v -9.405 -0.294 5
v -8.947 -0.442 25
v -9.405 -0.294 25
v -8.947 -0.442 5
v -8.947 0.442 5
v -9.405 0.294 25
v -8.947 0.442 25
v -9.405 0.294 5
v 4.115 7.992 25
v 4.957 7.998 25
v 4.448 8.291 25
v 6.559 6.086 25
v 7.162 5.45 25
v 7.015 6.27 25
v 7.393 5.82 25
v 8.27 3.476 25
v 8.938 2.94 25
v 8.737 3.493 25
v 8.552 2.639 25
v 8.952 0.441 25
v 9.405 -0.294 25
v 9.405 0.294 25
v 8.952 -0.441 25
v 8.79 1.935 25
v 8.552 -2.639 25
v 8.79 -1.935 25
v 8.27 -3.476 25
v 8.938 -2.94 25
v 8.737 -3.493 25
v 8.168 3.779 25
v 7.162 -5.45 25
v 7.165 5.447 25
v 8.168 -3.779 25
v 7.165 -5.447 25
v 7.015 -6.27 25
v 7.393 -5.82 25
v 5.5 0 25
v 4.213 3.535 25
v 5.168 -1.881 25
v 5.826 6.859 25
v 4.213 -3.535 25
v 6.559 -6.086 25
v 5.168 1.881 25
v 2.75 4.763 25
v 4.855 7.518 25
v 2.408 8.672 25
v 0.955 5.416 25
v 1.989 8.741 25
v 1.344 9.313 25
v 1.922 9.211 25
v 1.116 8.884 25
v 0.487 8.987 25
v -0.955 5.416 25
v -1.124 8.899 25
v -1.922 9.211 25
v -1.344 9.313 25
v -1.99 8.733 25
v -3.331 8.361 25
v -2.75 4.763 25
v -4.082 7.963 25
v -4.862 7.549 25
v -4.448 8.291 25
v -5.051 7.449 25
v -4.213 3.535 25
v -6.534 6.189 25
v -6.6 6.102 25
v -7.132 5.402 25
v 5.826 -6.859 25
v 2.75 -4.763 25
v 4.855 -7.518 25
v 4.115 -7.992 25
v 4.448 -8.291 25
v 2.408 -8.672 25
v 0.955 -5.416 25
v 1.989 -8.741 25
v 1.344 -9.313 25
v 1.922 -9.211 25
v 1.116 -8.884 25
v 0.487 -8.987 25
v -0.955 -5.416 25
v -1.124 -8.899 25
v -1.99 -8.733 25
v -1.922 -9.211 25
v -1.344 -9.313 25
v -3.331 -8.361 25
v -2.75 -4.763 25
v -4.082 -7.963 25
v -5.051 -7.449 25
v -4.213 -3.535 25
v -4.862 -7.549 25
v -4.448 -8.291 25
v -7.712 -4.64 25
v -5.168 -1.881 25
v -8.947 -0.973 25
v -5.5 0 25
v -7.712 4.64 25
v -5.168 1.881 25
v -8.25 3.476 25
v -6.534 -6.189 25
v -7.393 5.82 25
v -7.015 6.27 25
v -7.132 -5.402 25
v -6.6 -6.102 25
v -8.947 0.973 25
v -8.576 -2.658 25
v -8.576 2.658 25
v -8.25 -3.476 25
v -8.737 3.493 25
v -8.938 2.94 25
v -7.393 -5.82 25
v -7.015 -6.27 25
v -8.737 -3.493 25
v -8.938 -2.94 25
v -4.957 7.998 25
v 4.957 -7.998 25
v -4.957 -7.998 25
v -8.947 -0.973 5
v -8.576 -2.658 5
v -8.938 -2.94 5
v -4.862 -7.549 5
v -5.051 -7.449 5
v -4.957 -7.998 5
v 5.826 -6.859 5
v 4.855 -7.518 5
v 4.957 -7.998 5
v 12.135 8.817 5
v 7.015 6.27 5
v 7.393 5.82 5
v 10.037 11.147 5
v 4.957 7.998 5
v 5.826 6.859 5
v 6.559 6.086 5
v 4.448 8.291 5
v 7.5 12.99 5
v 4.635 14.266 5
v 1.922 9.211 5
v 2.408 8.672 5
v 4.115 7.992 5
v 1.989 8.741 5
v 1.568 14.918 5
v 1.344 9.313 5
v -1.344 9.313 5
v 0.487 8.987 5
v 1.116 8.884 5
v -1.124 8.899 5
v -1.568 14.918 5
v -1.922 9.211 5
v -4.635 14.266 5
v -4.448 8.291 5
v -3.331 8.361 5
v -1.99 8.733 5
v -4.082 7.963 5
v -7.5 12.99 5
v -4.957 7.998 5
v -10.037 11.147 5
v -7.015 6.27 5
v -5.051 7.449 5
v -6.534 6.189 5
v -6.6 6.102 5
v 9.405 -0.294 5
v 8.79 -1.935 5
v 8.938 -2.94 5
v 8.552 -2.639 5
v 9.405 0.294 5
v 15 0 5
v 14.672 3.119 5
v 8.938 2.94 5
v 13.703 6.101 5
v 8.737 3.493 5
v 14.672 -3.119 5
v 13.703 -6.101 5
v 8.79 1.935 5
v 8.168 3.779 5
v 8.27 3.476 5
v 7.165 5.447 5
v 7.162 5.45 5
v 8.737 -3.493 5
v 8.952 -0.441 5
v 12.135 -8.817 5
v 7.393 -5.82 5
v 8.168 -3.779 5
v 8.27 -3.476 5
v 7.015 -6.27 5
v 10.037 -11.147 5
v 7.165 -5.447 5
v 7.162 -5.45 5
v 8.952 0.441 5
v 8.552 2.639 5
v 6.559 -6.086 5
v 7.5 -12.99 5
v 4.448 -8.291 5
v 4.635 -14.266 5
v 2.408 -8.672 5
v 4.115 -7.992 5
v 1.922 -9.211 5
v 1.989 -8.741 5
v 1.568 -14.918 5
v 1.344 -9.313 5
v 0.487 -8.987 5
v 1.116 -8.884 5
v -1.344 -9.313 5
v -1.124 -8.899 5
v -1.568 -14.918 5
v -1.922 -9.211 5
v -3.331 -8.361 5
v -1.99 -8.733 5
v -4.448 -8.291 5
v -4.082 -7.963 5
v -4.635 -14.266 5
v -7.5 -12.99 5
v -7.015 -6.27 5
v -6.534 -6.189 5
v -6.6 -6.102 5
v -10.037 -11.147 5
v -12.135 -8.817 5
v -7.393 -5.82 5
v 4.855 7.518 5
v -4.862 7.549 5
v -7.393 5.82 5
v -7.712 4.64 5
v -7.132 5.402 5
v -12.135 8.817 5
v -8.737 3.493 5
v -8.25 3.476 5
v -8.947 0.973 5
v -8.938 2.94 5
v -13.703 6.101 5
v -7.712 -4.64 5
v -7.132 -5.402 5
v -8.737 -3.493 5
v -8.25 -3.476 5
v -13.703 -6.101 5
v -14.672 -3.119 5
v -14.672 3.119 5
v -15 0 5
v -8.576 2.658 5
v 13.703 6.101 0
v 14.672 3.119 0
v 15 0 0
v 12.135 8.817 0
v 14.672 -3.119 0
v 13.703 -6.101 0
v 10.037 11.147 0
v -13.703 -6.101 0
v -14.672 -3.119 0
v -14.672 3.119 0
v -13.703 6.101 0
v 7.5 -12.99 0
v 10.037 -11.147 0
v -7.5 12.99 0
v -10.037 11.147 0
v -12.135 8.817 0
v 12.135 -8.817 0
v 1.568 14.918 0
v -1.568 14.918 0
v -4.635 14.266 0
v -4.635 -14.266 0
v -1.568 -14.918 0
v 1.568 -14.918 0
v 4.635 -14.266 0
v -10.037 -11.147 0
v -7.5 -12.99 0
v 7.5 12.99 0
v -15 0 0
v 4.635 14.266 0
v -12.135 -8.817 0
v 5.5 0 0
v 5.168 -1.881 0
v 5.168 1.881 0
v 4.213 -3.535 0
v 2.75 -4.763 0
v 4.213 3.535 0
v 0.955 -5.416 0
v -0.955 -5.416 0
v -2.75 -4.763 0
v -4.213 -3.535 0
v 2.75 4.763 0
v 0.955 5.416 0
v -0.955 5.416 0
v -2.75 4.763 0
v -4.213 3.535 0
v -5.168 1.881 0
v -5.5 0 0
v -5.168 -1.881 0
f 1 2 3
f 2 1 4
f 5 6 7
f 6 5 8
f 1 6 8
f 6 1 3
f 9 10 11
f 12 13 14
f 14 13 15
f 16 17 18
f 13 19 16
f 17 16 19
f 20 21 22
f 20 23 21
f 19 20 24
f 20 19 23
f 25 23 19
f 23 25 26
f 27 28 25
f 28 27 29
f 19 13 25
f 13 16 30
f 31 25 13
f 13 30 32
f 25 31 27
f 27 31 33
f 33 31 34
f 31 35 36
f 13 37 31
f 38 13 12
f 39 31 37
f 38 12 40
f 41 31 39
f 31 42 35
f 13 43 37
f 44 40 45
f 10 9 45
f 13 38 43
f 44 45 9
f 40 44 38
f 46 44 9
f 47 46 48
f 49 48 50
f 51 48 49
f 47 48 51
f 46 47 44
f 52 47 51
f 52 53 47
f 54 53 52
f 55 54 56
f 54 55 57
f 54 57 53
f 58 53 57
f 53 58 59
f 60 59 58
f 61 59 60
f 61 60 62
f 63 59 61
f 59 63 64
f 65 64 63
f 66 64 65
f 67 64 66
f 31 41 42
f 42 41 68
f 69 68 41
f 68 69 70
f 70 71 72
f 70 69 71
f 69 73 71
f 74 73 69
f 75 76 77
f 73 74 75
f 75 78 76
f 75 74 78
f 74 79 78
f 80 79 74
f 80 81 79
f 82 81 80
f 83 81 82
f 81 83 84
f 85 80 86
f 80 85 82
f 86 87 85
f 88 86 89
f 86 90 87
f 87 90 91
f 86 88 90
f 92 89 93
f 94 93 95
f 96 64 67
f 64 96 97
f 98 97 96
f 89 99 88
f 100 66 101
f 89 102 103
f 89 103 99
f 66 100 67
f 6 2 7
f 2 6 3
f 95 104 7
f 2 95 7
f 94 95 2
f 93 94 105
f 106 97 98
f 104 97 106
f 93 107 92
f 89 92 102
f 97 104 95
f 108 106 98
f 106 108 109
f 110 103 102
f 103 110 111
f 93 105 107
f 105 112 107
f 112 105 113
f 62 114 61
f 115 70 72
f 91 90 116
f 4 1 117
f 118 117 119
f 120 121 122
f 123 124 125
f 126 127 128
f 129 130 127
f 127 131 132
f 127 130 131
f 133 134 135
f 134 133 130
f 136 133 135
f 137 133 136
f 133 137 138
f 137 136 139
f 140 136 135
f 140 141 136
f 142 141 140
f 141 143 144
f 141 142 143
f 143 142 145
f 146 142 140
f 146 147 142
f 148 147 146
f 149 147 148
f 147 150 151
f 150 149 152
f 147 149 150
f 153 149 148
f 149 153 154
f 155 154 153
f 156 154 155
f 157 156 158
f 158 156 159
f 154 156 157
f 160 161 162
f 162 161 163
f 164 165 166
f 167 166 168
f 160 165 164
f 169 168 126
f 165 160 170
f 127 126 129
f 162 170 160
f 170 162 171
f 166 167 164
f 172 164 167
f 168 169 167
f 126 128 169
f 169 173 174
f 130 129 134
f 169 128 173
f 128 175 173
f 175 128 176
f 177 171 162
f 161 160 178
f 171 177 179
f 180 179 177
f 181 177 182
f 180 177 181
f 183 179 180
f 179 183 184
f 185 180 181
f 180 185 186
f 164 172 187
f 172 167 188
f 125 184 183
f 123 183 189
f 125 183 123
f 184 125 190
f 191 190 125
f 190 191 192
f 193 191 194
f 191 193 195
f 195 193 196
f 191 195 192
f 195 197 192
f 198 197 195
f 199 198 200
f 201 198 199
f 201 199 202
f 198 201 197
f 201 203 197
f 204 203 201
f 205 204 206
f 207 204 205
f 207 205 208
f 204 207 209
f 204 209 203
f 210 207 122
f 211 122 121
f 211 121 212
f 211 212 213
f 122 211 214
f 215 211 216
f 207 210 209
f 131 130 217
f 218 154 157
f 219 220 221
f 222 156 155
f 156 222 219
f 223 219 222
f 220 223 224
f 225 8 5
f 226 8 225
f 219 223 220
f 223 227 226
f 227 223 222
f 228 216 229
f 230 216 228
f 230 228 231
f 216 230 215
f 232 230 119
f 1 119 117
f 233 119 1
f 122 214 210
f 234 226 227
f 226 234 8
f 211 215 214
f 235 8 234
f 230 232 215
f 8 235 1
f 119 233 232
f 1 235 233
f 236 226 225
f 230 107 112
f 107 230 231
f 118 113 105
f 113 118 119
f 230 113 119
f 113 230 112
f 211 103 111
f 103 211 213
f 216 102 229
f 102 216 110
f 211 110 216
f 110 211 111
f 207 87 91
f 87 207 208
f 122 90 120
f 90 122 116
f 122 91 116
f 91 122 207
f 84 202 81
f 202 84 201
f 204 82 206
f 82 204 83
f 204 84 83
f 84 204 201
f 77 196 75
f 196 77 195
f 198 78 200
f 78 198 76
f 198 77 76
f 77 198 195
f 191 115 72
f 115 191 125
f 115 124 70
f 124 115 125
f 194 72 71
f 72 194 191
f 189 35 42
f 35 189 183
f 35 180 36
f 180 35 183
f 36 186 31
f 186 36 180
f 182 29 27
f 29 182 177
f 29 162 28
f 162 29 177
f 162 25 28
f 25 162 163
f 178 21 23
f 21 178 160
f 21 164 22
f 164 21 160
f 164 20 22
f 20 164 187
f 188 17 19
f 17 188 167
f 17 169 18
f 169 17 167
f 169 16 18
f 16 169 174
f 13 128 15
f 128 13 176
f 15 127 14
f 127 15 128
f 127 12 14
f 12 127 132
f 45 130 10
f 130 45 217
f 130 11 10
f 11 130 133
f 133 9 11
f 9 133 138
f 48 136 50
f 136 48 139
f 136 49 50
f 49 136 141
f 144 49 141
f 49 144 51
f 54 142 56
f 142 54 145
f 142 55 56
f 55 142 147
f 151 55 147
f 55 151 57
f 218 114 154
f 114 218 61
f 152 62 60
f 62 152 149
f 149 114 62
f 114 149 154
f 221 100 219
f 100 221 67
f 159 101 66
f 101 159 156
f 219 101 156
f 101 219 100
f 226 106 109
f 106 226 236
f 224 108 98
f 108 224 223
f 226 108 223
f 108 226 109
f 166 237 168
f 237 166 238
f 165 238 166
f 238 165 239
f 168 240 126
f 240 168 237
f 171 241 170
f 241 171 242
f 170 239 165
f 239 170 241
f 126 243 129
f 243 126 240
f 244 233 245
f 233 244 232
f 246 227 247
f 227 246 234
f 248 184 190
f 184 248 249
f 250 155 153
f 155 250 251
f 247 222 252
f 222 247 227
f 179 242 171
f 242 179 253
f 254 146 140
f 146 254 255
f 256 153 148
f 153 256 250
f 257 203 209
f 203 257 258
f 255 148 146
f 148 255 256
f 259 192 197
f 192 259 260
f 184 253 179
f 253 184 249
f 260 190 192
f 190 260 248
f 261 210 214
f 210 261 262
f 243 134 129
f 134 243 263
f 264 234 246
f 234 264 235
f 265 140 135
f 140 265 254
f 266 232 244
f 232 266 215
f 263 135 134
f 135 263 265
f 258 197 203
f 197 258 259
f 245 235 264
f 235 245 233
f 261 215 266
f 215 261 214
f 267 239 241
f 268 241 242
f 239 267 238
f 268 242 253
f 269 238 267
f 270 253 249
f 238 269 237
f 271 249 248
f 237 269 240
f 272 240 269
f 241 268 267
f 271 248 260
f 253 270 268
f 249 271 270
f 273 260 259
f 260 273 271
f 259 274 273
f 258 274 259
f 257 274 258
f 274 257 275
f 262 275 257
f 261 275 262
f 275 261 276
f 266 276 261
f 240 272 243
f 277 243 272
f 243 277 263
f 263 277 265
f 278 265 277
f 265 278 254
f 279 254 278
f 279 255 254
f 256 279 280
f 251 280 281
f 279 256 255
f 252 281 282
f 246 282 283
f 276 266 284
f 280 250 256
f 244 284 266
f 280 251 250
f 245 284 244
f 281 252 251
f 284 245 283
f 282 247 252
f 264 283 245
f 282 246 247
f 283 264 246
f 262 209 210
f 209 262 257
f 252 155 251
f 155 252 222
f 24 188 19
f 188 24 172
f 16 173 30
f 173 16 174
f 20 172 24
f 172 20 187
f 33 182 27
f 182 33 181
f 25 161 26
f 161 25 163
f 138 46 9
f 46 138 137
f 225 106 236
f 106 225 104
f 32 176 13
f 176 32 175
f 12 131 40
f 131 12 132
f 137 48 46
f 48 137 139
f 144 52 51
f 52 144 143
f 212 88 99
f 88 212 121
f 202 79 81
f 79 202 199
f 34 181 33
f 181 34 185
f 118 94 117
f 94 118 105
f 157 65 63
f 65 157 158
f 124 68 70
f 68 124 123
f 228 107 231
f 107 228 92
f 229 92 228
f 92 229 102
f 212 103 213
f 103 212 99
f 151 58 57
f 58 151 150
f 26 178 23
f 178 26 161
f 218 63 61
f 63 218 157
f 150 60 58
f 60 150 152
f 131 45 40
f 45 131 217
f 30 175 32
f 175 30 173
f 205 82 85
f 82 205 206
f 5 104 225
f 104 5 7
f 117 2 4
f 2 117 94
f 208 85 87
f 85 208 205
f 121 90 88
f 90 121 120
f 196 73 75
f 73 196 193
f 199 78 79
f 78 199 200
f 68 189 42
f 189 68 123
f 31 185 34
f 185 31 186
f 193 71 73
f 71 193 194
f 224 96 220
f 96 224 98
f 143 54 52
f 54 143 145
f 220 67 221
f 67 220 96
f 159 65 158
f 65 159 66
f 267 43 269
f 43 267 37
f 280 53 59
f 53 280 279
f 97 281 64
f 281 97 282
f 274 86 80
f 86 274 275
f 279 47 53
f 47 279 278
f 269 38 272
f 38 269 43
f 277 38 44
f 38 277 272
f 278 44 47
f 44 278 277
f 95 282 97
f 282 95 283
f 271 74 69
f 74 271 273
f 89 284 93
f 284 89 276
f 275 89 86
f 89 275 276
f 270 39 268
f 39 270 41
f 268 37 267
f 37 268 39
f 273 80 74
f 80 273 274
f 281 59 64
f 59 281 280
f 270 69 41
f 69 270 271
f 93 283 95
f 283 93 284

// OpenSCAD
/*
 * Bottle Lamp Neck Adapter
 * Copyright (c) 2013-2019 Anar Software LLC. < http://anars.com >
 *
 * This program is free software: you can redistribute it and/or modify it under
 * the terms of the GNU General Public License as published by the Free Software
 * Foundation, either version 3 of the License, or (at your option) any later
 * version.
 *
 * This program is distributed in the hope that it will be useful, but WITHOUT
 * ANY WARRANTY; without even the implied warranty of MERCHANTABILITY or FITNESS
 * FOR A PARTICULAR PURPOSE. See the GNU General Public License for more details.
 *
 * You should have received a copy of the GNU General Public License along with
 * this program. If not, see < http://www.gnu.org/licenses/ >
 *
 */

/* [Global] */

/* [Adapter Settings] */
// Bottle neck inner diameter (mm)
bottle_neck_inner_diameter = 18;

// Bottle neck outer diameter (mm)
bottle_neck_outer_diameter = 30;

// Adapter head height (mm)
adapter_head_height = 5;

// Adapter body height (mm)
adapter_body_height = 20;

// Threaded rod diameter (mm)
threaded_rod_diameter = 11;

/* [Facets Settings] */
// Minimum angle for a fragment
$fa = 12;
// Minimum size of a fragment
$fs = 2;
// Number of fragments
$fn = 0;

/* [Hidden] */

difference()
{
	union()
	{
		cylinder(r = bottle_neck_outer_diameter / 2, h = adapter_head_height);
		translate([0, 0, adapter_head_height])
			cylinder(r = bottle_neck_inner_diameter / 2, h = adapter_body_height);
		for ( i = [0 : 18] )
			rotate( i * 360 / 18, [0, 0, 1])
				translate([bottle_neck_inner_diameter / 2 - bottle_neck_inner_diameter, 0, adapter_head_height])
					cylinder(r = 0.5, h = adapter_body_height);
	}
	cylinder(r = threaded_rod_diameter / 2, h = adapter_head_height + adapter_body_height);
}
